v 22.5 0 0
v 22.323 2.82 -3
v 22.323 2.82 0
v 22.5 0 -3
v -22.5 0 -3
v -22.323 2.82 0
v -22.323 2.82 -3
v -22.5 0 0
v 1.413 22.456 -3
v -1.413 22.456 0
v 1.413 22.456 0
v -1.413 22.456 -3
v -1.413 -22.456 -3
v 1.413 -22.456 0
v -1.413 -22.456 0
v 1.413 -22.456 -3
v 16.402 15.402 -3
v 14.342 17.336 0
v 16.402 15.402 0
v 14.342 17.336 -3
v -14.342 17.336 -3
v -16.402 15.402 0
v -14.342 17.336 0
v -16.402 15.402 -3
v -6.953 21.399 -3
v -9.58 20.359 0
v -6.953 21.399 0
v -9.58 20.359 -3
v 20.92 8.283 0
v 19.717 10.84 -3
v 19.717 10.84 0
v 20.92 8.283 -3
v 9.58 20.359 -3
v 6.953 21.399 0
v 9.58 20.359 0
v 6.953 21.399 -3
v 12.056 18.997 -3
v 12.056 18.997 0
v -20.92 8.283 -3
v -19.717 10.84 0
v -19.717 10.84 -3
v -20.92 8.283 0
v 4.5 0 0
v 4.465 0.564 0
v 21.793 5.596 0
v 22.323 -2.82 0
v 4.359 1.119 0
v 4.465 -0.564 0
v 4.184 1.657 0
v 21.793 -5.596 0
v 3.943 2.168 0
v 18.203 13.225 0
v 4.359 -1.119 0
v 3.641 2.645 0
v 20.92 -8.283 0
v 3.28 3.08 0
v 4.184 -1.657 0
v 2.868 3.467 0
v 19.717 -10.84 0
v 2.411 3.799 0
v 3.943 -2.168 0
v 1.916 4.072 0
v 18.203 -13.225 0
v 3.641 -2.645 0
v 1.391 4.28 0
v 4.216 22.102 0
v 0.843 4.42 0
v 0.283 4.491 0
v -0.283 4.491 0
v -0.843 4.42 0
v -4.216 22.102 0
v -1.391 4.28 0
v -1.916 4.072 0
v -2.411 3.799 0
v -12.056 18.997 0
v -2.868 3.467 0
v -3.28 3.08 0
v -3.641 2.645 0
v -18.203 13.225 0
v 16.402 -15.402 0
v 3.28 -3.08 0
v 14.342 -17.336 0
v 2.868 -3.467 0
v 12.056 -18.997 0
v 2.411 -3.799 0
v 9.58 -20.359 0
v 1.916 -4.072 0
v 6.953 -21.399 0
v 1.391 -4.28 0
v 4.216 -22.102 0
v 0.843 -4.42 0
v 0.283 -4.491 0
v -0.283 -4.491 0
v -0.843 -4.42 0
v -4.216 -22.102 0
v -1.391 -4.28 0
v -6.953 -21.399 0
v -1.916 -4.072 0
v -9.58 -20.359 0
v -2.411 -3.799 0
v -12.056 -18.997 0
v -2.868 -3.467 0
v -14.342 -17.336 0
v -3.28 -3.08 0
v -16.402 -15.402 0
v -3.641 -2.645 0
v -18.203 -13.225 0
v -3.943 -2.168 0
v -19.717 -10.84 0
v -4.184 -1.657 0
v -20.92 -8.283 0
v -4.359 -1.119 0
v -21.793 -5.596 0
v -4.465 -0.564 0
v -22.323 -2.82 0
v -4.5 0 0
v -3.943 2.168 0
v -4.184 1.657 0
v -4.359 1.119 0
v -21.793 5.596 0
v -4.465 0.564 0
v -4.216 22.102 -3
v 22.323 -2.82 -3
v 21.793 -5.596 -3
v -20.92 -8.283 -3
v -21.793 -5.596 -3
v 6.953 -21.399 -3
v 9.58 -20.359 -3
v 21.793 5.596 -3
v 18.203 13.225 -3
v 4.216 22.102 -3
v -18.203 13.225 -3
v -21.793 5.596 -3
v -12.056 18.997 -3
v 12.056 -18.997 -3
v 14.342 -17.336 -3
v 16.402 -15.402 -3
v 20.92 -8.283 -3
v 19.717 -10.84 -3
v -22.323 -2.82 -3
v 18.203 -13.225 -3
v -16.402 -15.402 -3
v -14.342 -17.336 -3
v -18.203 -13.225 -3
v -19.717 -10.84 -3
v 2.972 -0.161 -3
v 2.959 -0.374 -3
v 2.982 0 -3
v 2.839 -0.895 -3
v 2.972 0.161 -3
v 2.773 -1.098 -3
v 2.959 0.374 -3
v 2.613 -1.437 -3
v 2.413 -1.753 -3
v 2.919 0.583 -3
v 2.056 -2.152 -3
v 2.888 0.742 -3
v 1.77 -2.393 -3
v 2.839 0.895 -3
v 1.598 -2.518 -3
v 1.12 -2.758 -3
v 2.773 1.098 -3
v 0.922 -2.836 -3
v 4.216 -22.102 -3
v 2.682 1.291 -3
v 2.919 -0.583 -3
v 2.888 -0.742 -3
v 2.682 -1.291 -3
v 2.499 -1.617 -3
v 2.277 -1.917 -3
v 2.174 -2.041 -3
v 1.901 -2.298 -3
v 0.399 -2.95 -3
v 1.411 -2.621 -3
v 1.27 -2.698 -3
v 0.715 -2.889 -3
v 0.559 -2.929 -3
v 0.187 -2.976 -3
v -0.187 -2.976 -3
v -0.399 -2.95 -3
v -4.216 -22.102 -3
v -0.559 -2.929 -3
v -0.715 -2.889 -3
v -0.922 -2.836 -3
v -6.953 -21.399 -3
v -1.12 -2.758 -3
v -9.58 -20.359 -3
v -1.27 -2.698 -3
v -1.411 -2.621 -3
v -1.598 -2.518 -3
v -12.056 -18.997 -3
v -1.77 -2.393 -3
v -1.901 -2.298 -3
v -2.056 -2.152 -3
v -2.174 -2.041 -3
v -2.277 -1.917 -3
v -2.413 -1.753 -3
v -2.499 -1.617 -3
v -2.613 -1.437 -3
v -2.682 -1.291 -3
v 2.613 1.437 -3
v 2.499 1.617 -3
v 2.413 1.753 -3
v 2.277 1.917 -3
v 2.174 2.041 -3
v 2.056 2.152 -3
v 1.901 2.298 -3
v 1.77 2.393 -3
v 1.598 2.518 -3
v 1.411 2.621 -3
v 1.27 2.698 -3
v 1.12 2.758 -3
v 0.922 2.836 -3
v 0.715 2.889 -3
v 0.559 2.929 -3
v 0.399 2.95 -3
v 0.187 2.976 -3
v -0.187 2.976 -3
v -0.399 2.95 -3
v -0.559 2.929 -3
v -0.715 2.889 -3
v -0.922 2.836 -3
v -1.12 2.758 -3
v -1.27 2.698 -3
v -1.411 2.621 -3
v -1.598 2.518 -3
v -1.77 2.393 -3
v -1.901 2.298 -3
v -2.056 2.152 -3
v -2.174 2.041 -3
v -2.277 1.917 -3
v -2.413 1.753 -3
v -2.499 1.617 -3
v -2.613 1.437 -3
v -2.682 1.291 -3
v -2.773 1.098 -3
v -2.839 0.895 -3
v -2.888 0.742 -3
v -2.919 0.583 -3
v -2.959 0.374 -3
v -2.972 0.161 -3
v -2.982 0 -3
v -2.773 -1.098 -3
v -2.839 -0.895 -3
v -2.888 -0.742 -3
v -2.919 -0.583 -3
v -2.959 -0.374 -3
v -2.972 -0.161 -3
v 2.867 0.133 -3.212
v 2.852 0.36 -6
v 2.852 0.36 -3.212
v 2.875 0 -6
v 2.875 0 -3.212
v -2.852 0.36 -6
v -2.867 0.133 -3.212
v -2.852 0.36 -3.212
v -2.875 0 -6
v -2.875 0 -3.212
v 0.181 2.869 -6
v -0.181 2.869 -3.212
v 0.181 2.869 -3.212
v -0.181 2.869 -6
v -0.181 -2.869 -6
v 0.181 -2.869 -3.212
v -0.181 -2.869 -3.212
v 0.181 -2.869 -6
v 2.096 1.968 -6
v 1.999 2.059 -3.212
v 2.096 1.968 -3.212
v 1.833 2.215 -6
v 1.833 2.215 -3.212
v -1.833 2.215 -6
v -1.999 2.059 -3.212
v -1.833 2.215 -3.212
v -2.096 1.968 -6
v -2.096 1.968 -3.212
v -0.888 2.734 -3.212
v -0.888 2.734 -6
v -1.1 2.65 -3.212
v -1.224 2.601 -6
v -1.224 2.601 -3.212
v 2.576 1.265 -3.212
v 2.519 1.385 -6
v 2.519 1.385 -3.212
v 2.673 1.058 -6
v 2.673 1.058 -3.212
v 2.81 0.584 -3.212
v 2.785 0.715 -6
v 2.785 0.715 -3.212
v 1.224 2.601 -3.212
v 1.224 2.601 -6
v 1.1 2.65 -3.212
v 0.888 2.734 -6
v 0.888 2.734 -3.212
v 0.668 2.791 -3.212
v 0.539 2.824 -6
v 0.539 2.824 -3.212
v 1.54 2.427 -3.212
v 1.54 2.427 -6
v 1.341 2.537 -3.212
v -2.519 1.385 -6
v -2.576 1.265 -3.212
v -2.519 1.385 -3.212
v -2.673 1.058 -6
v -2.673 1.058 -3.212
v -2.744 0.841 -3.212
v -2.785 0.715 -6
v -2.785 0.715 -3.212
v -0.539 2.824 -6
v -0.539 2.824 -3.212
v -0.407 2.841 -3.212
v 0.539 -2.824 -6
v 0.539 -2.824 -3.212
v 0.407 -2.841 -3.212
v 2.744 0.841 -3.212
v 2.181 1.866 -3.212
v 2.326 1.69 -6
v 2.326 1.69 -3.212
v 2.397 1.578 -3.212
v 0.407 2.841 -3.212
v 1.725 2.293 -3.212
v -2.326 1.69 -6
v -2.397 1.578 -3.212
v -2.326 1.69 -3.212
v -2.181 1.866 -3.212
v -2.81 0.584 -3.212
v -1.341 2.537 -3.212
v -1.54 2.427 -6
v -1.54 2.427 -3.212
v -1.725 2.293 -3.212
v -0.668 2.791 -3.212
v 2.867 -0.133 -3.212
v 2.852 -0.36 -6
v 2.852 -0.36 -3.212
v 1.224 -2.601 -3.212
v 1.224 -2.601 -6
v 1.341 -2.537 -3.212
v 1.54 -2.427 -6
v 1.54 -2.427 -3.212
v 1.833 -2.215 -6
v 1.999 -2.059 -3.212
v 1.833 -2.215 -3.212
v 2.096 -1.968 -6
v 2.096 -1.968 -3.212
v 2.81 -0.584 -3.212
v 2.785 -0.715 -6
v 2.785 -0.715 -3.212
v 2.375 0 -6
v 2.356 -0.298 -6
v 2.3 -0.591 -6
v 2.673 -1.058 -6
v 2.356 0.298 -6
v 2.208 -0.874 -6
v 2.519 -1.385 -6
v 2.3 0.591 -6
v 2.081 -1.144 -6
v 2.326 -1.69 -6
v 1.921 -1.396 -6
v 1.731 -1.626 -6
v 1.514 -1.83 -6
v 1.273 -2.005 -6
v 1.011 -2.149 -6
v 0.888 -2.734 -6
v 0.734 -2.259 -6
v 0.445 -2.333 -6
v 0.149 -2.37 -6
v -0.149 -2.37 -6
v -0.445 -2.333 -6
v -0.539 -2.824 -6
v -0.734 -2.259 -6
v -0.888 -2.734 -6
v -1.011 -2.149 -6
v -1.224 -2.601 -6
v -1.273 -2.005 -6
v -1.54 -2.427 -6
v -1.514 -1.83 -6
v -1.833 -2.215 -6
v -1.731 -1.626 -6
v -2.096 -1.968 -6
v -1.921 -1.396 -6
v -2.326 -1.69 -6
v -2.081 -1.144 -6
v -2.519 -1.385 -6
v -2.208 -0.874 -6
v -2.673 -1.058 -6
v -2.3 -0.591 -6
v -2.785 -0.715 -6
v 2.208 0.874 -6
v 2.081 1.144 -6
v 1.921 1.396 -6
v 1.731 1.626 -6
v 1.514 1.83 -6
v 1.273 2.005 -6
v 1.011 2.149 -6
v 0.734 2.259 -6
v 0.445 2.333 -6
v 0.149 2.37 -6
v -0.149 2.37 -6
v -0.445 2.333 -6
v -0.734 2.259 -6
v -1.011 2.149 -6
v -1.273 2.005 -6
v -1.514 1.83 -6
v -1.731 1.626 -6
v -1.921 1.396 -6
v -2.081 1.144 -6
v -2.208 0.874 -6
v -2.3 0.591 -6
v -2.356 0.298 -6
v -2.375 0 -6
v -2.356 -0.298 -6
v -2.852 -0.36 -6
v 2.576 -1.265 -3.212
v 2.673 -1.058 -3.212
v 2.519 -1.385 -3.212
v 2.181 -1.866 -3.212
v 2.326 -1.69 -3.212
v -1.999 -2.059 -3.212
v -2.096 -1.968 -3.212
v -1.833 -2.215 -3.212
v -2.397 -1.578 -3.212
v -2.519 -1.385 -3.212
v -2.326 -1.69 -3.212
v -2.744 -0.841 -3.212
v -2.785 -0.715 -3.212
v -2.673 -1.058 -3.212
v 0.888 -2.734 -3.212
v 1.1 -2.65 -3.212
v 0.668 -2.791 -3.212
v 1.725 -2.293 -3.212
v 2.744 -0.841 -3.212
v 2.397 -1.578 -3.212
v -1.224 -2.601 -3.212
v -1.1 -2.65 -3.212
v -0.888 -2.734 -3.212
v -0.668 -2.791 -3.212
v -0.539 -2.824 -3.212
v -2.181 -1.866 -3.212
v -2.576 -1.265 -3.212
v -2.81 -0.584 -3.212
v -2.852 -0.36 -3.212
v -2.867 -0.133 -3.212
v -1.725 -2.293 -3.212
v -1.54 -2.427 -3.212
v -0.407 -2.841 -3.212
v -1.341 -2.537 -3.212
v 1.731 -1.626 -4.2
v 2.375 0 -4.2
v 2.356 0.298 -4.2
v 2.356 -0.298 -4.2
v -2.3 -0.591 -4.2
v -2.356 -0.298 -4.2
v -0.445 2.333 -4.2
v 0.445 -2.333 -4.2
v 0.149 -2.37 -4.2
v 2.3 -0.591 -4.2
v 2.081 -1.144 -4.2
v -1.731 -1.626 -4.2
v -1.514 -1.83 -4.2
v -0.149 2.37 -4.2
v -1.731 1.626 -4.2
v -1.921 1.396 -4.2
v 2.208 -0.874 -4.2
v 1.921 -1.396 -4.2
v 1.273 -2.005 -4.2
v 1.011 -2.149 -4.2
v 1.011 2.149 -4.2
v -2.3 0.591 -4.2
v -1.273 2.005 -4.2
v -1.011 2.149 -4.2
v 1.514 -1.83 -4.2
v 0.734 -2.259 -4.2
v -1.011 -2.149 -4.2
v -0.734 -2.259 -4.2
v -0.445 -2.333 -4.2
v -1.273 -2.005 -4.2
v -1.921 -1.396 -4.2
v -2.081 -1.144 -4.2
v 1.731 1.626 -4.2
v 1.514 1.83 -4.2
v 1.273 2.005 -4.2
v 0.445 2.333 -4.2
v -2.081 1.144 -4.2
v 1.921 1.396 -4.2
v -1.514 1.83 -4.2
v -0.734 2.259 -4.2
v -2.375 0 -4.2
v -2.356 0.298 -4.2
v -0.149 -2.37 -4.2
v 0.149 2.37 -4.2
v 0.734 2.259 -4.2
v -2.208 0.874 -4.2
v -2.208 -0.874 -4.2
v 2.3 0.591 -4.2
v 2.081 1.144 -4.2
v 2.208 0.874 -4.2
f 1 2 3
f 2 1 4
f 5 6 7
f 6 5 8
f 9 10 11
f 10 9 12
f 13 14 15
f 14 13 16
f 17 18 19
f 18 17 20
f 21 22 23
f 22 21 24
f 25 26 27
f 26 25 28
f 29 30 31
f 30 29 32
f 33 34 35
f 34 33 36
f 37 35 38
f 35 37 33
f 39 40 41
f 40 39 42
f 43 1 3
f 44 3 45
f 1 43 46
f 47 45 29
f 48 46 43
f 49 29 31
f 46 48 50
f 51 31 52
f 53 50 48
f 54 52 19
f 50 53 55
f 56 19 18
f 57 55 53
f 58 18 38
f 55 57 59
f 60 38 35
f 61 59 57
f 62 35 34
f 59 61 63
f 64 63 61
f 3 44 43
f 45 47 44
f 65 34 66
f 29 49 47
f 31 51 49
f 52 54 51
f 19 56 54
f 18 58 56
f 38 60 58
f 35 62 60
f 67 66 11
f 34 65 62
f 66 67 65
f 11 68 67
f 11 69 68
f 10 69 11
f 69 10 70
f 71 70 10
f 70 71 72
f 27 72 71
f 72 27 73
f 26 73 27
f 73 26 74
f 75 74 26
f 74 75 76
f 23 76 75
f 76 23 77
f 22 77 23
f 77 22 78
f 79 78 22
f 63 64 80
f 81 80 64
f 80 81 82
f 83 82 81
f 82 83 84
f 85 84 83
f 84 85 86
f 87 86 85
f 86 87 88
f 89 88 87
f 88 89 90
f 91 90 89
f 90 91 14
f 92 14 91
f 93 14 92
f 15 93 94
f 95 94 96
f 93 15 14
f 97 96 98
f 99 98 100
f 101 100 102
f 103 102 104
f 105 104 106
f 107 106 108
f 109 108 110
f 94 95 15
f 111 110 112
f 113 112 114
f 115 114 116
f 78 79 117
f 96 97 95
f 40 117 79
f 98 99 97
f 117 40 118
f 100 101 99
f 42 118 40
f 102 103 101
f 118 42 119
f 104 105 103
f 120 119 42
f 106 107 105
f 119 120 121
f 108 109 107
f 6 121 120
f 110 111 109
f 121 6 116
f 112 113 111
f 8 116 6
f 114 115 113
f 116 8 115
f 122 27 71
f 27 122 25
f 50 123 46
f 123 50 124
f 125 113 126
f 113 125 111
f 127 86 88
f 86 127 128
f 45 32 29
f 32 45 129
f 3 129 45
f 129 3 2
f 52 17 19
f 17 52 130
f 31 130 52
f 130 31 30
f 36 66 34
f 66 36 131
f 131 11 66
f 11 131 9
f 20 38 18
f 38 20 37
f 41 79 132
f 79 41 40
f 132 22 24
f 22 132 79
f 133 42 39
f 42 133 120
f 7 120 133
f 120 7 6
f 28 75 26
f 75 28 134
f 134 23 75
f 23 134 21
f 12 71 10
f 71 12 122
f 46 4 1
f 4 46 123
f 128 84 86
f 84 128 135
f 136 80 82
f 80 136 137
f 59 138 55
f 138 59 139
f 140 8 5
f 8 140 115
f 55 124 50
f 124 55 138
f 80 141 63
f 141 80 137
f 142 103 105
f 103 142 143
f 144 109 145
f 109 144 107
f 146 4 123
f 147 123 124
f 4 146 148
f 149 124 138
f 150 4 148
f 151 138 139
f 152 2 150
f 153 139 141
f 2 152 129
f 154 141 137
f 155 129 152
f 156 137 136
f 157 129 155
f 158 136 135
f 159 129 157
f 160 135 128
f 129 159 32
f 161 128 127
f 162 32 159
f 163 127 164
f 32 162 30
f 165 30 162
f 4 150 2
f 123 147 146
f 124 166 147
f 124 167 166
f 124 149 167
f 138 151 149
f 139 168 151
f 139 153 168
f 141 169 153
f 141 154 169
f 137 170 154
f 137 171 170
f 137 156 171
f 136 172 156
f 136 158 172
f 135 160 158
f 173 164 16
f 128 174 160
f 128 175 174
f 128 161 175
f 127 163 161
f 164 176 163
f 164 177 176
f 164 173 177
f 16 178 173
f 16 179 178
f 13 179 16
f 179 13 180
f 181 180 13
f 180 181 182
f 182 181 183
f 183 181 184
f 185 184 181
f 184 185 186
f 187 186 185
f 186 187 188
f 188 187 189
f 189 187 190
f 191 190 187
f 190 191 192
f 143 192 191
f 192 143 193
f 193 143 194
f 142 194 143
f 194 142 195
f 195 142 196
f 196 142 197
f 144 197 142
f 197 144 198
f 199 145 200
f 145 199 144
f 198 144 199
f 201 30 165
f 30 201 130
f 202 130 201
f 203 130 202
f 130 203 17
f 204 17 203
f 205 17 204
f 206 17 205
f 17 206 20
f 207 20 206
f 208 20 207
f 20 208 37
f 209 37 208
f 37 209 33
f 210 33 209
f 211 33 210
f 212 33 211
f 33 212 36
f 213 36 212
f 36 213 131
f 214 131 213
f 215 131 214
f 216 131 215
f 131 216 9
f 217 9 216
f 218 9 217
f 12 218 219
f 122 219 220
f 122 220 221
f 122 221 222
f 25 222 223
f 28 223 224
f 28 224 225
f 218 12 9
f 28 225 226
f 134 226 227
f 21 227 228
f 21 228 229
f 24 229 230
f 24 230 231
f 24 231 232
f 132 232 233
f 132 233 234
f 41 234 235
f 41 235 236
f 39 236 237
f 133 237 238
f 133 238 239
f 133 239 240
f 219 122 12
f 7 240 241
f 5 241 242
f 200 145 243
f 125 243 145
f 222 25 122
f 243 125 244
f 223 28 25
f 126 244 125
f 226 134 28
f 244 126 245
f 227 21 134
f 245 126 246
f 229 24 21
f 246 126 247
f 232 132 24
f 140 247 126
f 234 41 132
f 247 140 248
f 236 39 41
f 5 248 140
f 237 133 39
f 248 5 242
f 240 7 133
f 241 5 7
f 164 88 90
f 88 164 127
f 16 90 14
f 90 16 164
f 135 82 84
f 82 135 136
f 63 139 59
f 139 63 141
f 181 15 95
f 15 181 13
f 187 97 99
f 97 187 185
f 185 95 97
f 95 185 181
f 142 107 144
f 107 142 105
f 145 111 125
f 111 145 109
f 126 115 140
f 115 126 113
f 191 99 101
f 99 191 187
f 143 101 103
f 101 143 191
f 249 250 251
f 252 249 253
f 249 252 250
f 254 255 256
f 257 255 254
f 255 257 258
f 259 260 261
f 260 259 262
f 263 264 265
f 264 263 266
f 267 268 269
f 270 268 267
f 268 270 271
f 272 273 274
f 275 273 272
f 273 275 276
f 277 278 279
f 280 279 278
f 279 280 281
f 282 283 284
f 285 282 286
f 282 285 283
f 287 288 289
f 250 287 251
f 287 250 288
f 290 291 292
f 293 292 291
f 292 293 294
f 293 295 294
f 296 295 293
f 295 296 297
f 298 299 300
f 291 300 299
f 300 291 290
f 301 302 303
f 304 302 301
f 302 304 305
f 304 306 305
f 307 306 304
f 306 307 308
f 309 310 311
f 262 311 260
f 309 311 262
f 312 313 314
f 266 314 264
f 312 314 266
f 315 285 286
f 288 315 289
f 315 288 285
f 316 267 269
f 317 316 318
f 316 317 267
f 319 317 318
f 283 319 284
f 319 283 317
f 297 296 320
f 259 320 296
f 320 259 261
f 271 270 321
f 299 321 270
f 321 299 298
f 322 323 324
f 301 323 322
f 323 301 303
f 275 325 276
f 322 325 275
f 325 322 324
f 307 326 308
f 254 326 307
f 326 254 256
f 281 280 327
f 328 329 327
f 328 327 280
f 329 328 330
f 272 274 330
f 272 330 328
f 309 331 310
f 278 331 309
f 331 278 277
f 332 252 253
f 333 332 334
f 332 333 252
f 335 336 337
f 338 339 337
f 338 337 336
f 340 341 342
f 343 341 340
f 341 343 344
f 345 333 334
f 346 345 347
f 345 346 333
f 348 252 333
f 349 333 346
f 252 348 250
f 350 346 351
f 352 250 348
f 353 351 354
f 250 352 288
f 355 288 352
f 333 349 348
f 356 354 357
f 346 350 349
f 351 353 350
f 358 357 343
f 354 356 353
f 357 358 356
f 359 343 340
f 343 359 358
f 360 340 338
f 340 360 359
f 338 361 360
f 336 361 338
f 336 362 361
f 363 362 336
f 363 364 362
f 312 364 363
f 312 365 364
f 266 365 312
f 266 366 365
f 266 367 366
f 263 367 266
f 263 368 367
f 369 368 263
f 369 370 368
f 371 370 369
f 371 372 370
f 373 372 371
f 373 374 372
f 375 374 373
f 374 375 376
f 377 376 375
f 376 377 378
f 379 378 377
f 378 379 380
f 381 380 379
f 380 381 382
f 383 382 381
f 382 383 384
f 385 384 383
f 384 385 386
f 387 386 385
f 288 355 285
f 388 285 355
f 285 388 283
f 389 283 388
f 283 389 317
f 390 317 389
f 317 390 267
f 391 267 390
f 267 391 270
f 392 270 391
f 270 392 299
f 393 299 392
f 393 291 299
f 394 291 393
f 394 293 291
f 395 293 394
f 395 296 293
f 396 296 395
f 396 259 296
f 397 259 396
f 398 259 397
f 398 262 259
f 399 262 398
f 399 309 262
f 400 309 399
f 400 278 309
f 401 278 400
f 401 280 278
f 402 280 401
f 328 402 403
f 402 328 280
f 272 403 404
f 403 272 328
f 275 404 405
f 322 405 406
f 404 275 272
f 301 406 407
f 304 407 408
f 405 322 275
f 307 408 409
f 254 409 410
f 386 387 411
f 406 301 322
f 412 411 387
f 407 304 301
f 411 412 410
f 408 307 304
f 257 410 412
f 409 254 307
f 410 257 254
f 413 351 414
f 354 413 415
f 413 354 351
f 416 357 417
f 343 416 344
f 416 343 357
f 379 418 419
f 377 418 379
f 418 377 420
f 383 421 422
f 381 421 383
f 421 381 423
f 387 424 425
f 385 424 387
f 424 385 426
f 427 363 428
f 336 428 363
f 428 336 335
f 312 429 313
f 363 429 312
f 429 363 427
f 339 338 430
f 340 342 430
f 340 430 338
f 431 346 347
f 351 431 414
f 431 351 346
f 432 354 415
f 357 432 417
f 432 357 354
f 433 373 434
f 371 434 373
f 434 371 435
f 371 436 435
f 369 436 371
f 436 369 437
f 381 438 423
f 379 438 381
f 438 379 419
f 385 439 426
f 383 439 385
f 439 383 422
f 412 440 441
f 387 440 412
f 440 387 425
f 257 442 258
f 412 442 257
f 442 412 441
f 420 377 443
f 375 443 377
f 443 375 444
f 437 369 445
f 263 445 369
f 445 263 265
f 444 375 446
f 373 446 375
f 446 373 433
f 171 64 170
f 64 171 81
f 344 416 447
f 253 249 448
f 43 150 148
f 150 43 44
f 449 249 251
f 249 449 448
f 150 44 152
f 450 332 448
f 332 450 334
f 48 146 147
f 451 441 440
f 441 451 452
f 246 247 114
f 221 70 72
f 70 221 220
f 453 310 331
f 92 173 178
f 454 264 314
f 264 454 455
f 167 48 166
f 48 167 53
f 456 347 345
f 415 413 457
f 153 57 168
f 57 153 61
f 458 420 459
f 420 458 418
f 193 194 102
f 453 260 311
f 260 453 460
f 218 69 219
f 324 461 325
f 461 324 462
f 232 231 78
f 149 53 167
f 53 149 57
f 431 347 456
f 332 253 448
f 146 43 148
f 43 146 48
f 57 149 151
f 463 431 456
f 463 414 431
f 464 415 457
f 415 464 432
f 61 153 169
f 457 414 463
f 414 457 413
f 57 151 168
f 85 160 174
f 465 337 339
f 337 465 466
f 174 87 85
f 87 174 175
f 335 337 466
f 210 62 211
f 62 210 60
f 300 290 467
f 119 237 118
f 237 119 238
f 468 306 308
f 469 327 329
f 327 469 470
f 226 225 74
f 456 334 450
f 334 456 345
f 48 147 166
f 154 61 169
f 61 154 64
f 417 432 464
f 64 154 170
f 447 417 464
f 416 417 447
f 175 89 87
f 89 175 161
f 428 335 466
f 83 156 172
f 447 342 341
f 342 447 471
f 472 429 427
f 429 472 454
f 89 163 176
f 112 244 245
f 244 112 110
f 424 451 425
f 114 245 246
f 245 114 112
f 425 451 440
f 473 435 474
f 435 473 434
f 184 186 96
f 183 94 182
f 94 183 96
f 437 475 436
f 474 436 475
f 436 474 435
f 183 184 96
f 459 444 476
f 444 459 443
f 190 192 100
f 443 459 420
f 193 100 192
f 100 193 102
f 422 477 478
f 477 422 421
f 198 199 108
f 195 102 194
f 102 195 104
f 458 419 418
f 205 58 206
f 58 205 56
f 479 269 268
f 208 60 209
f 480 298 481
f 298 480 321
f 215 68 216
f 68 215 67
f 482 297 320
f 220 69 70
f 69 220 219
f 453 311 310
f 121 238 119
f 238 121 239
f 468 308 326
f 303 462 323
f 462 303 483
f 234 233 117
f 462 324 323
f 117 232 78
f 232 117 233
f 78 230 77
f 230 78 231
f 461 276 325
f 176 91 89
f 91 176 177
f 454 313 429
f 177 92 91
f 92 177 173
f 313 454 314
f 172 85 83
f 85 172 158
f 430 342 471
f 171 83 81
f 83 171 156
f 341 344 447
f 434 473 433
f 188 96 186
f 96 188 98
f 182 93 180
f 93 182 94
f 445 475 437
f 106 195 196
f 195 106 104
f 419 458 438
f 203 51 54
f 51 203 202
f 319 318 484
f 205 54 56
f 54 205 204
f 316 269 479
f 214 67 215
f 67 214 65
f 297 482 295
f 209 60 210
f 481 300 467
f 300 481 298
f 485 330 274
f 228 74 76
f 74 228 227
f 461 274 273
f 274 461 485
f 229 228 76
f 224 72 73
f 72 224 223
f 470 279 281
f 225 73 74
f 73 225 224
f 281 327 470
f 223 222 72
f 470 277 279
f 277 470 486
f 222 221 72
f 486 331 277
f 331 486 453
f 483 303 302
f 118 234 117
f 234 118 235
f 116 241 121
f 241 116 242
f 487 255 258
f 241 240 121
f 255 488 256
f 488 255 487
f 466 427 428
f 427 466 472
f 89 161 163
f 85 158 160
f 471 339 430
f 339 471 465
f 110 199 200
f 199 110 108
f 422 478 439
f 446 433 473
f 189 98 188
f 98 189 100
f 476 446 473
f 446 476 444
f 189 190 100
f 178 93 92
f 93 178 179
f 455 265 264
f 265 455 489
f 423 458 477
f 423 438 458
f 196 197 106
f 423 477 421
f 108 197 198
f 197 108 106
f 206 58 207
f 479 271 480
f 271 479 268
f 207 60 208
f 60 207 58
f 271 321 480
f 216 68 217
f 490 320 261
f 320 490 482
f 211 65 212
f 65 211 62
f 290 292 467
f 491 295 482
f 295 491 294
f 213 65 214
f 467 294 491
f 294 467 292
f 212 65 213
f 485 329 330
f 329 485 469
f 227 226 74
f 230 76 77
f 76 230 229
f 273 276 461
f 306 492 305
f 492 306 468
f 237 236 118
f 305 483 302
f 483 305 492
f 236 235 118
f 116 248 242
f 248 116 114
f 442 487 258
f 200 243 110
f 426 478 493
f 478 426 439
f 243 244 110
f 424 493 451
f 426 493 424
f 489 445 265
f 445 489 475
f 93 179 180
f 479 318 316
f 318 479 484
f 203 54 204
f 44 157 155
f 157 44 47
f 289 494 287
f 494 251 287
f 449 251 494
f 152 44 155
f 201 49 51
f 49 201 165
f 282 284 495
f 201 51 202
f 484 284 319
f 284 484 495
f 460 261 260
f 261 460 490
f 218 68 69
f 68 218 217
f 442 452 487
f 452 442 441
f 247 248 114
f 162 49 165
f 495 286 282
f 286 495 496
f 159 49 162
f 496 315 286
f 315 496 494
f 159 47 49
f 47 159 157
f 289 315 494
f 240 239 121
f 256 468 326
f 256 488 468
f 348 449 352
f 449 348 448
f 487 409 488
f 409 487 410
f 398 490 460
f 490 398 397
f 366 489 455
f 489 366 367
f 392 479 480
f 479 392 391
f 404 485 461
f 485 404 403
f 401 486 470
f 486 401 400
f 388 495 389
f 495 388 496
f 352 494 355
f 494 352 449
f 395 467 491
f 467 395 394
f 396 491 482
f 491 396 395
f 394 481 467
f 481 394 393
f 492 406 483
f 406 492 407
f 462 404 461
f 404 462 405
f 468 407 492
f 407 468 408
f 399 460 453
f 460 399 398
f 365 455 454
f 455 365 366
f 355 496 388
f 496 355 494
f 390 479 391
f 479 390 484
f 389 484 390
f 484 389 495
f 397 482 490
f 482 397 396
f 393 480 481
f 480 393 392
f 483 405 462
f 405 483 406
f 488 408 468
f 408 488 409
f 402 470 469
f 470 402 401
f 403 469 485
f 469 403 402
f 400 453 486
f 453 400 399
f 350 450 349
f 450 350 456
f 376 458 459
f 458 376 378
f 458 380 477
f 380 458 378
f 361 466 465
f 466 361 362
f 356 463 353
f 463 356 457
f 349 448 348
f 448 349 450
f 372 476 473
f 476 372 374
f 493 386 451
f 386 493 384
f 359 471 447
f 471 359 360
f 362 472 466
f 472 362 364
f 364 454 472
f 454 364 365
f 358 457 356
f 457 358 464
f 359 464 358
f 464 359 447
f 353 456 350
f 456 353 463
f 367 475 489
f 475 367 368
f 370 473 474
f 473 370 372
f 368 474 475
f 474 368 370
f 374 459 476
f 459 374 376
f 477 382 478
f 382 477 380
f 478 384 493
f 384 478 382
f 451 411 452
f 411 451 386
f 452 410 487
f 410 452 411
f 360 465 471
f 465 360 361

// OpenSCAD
$fn = 50;


difference() {
	union() {
		translate(v = [0, 0, -3.0000000000]) {
			cylinder(h = 3, r = 22.5000000000);
		}
		translate(v = [0, 0, -6.0000000000]) {
			cylinder(h = 6, r = 2.8750000000);
		}
	}
	union() {
		translate(v = [0, 0, 0]) {
			rotate(a = [0, 0, 0]) {
				difference() {
					union() {
						translate(v = [0, 0, -6.0000000000]) {
							cylinder(h = 6, r = 2.2500000000);
						}
						translate(v = [0, 0, -4.2000000000]) {
							cylinder(h = 4.2000000000, r1 = 2.3750000000, r2 = 4.5000000000);
						}
						translate(v = [0, 0, -6.0000000000]) {
							cylinder(h = 6, r = 2.3750000000);
						}
						translate(v = [0, 0, -6.0000000000]) {
							cylinder(h = 6, r = 2.2500000000);
						}
					}
					union();
				}
			}
		}
	}
}
